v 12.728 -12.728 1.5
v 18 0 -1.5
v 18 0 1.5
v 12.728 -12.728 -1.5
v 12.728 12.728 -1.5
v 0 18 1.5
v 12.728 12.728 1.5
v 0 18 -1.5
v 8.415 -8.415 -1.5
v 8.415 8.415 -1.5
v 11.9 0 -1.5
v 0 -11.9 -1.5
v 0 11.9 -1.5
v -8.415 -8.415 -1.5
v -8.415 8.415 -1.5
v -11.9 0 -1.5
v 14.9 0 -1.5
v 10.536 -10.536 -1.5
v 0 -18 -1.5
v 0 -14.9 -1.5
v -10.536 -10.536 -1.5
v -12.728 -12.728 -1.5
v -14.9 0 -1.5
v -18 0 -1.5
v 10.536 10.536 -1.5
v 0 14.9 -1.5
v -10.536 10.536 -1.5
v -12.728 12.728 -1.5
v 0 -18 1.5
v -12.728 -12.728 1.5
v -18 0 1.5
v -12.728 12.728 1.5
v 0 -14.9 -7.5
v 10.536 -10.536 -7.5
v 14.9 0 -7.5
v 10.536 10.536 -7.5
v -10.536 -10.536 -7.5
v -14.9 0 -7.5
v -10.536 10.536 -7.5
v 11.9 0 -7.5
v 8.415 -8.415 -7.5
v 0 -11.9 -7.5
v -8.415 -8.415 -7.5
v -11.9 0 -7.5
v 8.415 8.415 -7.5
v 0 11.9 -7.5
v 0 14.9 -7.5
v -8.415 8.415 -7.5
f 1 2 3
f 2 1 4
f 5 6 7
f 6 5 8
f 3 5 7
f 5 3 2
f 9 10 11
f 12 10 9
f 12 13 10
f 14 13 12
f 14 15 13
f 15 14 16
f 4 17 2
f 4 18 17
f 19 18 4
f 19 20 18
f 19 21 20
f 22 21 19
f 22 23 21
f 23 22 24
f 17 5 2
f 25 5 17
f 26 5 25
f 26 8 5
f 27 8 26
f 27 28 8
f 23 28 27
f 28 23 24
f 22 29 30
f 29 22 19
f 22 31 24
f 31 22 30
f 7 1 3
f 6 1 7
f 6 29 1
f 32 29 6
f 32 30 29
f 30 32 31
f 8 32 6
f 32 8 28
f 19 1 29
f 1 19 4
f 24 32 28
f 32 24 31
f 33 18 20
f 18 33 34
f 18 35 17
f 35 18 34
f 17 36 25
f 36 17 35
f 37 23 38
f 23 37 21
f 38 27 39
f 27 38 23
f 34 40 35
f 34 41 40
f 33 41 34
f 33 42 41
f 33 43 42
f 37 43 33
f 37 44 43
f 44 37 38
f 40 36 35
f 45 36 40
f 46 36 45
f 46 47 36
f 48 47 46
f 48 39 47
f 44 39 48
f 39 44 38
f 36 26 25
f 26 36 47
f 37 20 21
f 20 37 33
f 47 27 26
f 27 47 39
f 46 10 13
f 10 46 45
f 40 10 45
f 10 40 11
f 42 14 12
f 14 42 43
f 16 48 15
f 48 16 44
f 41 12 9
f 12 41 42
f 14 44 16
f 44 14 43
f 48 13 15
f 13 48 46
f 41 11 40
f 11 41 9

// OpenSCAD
$vpd=100;
$fn=80;

T = 3; //wall thickness in mm
depth_coil=5;

coil_w = 10;
coil_h = 5;
coil_r = 21;
coil_r1 = 22+9-depth_coil;
coil_r2 = 8;
hole_r = 0;
coil_spacing = 23.1;
//coil_spacing = 72;

play = 0.2;
play_cuvette = 0.3;

Wcuv = 12.1; //cuvette width
Hcuv = 30; //cuvette holder height






difference(){
    union(){
        //top lid
        translate([0,0,0]) top_lid();  
    }
}

module top_lid(){
    
    union(){
        translate([0,0,0]) hex_hollow(8, T, coil_r-T, 0);
        translate([0,0,-1.5*T]) hex_hollow(8, 2*T, coil_r-2*T-play/2, coil_r-3*T-play/2);
    }
    
}







module hex_hollow(N, height, radius_outer, radius_inner){
    difference(){
        polyN(N, height, radius_outer);
        polyN(N, height, radius_inner);
    }
}




module polyNflat(N, H, Rflat){
    polyR = Rflat/cos(180/N);
    linear_extrude(height=H, center=true, convexity=0, twist=0, slices=0) circle(polyR, $fn=N);
}

module polyN(N, H, R){
    linear_extrude(height=H, center=true, convexity=0, twist=0, slices=0) circle(R, $fn=N);
}
